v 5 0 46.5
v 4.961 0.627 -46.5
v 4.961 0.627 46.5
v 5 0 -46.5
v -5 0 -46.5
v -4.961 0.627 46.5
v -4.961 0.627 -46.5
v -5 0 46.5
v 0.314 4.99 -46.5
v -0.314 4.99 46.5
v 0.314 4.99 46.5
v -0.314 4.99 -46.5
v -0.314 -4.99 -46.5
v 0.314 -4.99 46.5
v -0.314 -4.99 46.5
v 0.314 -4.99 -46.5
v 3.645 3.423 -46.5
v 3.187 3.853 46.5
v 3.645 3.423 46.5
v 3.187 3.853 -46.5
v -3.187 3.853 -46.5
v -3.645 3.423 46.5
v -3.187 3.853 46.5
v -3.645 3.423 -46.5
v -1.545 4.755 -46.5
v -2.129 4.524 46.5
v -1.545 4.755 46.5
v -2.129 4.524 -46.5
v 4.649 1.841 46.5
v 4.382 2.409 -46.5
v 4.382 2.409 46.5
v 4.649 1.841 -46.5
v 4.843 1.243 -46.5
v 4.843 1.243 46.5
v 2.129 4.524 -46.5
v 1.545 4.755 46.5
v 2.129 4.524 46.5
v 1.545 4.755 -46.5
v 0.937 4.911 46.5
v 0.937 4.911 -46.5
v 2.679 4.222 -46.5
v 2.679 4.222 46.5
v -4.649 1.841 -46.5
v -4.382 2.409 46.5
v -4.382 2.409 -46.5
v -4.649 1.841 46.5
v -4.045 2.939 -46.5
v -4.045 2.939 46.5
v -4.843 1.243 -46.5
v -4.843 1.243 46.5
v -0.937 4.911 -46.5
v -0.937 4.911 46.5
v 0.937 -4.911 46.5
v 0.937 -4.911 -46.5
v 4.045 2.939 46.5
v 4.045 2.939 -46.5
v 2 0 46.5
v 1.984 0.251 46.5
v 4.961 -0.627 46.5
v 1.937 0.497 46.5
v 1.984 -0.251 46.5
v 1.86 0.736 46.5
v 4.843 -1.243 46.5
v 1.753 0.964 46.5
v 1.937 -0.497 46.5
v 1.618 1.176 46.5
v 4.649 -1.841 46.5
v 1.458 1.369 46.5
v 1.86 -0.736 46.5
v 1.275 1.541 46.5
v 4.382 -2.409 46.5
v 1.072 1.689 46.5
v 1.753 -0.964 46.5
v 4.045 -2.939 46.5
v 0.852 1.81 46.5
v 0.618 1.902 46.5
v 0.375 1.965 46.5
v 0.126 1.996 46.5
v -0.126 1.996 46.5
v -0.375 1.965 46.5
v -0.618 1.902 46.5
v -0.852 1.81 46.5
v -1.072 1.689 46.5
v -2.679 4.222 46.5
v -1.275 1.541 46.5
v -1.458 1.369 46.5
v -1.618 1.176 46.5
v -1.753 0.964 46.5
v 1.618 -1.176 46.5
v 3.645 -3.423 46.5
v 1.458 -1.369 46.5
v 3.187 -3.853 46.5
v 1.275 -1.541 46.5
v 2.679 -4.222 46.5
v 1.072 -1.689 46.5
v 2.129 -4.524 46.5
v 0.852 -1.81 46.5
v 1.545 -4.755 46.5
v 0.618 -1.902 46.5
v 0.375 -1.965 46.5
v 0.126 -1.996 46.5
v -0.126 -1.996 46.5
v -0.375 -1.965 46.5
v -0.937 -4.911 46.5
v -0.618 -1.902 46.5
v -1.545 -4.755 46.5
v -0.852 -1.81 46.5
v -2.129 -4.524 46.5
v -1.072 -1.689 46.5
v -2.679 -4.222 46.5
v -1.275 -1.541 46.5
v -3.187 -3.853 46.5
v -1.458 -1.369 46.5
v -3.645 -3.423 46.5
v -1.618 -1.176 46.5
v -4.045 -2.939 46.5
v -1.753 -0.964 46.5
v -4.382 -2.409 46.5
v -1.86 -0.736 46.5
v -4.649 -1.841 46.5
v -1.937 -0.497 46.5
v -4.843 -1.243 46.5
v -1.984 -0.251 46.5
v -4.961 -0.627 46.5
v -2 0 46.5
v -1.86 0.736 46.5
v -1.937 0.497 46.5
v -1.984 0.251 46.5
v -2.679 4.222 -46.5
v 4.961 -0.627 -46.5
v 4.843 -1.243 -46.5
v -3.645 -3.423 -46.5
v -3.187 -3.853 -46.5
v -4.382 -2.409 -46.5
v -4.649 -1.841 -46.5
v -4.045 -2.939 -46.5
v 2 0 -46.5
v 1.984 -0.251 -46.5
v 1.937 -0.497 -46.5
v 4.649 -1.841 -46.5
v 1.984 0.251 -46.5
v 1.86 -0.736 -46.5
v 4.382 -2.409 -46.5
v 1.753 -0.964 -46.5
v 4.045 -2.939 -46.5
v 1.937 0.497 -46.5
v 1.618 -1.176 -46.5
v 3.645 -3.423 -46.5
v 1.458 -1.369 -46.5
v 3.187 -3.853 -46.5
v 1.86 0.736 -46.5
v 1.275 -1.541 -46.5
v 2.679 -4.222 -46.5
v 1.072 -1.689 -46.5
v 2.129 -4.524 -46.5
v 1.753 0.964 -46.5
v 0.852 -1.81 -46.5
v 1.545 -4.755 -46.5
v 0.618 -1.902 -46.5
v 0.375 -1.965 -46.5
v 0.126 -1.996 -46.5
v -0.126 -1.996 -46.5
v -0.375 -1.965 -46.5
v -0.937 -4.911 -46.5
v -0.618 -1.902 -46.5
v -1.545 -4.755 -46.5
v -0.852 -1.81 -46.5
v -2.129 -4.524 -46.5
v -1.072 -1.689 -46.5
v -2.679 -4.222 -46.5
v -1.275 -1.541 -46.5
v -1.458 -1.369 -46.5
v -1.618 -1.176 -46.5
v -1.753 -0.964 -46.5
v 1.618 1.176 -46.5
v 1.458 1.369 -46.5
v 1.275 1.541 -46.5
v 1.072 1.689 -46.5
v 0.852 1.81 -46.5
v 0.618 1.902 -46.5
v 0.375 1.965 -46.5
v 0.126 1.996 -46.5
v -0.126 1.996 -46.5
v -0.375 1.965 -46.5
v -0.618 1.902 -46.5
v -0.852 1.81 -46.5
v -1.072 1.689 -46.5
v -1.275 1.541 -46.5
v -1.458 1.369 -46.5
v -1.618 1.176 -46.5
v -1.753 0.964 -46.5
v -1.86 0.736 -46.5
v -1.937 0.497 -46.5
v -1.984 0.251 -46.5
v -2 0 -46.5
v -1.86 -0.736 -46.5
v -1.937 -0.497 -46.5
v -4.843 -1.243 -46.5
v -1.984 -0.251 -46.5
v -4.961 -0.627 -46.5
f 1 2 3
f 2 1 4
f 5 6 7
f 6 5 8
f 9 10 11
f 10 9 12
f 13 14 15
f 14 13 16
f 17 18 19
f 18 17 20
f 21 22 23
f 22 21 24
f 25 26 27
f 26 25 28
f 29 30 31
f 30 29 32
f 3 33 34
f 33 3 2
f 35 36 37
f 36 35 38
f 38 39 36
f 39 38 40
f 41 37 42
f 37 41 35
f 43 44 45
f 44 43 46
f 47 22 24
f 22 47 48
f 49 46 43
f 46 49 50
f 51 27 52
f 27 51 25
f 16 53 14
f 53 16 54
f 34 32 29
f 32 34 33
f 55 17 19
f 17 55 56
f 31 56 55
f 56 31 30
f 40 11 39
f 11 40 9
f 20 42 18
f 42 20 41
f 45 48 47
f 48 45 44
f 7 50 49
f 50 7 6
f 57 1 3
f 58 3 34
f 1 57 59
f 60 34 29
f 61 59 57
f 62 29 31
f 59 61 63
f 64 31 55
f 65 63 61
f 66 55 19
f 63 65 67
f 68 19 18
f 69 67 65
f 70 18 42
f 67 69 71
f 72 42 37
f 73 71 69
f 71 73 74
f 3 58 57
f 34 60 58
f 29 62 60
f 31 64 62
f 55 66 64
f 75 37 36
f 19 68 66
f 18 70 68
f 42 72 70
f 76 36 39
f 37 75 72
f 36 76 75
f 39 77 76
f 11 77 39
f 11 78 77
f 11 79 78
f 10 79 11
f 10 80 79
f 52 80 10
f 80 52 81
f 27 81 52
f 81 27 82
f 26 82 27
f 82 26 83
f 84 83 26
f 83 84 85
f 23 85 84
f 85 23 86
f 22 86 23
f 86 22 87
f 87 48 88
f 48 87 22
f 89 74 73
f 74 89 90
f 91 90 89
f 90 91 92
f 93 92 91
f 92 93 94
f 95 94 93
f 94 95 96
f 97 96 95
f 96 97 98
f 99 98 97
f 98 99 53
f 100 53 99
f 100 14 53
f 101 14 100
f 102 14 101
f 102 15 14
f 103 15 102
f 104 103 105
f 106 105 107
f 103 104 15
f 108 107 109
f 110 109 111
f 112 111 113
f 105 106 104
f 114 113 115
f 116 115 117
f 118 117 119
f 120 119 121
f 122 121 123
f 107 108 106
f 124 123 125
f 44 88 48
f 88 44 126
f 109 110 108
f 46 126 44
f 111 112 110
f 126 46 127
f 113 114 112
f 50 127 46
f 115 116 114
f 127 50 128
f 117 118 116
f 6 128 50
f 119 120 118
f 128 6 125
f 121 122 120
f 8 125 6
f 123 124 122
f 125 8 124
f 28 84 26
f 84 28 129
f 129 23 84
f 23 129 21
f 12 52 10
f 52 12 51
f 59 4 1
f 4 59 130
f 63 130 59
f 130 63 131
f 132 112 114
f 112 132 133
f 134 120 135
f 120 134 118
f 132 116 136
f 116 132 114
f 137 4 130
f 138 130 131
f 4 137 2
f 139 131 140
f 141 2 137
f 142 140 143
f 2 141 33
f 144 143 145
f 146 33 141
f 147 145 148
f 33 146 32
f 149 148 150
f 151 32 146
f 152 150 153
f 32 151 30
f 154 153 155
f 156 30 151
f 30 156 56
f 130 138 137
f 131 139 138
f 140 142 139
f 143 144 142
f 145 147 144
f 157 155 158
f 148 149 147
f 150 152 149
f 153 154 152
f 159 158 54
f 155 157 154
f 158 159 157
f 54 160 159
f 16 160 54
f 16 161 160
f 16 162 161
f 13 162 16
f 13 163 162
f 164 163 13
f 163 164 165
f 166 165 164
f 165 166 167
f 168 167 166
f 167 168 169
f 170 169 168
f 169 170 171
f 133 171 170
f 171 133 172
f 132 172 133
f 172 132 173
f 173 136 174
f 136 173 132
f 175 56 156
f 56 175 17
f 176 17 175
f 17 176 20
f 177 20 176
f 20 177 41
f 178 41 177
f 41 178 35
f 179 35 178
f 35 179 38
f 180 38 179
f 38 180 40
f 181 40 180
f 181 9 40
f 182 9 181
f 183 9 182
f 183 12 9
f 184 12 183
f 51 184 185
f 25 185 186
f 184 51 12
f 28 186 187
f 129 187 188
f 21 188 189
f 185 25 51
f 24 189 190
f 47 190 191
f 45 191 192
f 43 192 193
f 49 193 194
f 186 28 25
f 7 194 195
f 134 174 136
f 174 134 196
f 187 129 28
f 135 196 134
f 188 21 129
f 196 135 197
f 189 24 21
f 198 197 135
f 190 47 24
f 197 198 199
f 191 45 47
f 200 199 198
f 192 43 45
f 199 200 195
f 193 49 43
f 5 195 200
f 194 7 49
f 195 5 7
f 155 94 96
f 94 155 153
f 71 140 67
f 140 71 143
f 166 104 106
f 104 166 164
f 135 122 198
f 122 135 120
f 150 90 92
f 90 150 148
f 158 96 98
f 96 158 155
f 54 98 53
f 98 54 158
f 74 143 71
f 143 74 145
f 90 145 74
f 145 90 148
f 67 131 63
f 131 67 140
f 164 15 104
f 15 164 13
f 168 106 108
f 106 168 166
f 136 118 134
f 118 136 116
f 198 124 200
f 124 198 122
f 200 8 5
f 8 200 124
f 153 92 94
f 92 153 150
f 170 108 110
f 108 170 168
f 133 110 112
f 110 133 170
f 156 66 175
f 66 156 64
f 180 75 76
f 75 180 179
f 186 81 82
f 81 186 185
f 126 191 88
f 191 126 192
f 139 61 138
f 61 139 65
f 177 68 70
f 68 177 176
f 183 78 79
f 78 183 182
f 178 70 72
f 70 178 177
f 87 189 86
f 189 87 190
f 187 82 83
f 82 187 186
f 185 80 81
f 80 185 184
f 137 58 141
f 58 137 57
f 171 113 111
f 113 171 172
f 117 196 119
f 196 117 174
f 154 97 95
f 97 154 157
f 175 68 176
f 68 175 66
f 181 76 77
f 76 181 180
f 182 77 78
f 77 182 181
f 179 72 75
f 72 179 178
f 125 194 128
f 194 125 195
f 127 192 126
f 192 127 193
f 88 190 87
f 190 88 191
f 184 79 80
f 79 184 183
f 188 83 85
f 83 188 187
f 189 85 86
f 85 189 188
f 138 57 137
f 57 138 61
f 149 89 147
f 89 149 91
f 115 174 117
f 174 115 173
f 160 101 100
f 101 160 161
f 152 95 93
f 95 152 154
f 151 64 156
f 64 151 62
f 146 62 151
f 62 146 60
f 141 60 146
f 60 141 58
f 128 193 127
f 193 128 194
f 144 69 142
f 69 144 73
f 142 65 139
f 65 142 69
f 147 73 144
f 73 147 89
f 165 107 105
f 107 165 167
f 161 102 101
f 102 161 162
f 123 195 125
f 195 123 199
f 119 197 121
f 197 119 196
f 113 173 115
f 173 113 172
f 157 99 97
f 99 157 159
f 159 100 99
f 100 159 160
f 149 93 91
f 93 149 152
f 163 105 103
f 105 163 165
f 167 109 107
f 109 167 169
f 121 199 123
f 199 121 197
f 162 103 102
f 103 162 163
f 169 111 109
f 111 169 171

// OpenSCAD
$fn = 50;


difference() {
	union() {
		translate(v = [0, 0, -46.5000000000]) {
			cylinder(h = 93, r = 5.0000000000);
		}
	}
	union() {
		translate(v = [0, 0, -100.0000000000]) {
			cylinder(h = 200, r = 2);
		}
	}
}
